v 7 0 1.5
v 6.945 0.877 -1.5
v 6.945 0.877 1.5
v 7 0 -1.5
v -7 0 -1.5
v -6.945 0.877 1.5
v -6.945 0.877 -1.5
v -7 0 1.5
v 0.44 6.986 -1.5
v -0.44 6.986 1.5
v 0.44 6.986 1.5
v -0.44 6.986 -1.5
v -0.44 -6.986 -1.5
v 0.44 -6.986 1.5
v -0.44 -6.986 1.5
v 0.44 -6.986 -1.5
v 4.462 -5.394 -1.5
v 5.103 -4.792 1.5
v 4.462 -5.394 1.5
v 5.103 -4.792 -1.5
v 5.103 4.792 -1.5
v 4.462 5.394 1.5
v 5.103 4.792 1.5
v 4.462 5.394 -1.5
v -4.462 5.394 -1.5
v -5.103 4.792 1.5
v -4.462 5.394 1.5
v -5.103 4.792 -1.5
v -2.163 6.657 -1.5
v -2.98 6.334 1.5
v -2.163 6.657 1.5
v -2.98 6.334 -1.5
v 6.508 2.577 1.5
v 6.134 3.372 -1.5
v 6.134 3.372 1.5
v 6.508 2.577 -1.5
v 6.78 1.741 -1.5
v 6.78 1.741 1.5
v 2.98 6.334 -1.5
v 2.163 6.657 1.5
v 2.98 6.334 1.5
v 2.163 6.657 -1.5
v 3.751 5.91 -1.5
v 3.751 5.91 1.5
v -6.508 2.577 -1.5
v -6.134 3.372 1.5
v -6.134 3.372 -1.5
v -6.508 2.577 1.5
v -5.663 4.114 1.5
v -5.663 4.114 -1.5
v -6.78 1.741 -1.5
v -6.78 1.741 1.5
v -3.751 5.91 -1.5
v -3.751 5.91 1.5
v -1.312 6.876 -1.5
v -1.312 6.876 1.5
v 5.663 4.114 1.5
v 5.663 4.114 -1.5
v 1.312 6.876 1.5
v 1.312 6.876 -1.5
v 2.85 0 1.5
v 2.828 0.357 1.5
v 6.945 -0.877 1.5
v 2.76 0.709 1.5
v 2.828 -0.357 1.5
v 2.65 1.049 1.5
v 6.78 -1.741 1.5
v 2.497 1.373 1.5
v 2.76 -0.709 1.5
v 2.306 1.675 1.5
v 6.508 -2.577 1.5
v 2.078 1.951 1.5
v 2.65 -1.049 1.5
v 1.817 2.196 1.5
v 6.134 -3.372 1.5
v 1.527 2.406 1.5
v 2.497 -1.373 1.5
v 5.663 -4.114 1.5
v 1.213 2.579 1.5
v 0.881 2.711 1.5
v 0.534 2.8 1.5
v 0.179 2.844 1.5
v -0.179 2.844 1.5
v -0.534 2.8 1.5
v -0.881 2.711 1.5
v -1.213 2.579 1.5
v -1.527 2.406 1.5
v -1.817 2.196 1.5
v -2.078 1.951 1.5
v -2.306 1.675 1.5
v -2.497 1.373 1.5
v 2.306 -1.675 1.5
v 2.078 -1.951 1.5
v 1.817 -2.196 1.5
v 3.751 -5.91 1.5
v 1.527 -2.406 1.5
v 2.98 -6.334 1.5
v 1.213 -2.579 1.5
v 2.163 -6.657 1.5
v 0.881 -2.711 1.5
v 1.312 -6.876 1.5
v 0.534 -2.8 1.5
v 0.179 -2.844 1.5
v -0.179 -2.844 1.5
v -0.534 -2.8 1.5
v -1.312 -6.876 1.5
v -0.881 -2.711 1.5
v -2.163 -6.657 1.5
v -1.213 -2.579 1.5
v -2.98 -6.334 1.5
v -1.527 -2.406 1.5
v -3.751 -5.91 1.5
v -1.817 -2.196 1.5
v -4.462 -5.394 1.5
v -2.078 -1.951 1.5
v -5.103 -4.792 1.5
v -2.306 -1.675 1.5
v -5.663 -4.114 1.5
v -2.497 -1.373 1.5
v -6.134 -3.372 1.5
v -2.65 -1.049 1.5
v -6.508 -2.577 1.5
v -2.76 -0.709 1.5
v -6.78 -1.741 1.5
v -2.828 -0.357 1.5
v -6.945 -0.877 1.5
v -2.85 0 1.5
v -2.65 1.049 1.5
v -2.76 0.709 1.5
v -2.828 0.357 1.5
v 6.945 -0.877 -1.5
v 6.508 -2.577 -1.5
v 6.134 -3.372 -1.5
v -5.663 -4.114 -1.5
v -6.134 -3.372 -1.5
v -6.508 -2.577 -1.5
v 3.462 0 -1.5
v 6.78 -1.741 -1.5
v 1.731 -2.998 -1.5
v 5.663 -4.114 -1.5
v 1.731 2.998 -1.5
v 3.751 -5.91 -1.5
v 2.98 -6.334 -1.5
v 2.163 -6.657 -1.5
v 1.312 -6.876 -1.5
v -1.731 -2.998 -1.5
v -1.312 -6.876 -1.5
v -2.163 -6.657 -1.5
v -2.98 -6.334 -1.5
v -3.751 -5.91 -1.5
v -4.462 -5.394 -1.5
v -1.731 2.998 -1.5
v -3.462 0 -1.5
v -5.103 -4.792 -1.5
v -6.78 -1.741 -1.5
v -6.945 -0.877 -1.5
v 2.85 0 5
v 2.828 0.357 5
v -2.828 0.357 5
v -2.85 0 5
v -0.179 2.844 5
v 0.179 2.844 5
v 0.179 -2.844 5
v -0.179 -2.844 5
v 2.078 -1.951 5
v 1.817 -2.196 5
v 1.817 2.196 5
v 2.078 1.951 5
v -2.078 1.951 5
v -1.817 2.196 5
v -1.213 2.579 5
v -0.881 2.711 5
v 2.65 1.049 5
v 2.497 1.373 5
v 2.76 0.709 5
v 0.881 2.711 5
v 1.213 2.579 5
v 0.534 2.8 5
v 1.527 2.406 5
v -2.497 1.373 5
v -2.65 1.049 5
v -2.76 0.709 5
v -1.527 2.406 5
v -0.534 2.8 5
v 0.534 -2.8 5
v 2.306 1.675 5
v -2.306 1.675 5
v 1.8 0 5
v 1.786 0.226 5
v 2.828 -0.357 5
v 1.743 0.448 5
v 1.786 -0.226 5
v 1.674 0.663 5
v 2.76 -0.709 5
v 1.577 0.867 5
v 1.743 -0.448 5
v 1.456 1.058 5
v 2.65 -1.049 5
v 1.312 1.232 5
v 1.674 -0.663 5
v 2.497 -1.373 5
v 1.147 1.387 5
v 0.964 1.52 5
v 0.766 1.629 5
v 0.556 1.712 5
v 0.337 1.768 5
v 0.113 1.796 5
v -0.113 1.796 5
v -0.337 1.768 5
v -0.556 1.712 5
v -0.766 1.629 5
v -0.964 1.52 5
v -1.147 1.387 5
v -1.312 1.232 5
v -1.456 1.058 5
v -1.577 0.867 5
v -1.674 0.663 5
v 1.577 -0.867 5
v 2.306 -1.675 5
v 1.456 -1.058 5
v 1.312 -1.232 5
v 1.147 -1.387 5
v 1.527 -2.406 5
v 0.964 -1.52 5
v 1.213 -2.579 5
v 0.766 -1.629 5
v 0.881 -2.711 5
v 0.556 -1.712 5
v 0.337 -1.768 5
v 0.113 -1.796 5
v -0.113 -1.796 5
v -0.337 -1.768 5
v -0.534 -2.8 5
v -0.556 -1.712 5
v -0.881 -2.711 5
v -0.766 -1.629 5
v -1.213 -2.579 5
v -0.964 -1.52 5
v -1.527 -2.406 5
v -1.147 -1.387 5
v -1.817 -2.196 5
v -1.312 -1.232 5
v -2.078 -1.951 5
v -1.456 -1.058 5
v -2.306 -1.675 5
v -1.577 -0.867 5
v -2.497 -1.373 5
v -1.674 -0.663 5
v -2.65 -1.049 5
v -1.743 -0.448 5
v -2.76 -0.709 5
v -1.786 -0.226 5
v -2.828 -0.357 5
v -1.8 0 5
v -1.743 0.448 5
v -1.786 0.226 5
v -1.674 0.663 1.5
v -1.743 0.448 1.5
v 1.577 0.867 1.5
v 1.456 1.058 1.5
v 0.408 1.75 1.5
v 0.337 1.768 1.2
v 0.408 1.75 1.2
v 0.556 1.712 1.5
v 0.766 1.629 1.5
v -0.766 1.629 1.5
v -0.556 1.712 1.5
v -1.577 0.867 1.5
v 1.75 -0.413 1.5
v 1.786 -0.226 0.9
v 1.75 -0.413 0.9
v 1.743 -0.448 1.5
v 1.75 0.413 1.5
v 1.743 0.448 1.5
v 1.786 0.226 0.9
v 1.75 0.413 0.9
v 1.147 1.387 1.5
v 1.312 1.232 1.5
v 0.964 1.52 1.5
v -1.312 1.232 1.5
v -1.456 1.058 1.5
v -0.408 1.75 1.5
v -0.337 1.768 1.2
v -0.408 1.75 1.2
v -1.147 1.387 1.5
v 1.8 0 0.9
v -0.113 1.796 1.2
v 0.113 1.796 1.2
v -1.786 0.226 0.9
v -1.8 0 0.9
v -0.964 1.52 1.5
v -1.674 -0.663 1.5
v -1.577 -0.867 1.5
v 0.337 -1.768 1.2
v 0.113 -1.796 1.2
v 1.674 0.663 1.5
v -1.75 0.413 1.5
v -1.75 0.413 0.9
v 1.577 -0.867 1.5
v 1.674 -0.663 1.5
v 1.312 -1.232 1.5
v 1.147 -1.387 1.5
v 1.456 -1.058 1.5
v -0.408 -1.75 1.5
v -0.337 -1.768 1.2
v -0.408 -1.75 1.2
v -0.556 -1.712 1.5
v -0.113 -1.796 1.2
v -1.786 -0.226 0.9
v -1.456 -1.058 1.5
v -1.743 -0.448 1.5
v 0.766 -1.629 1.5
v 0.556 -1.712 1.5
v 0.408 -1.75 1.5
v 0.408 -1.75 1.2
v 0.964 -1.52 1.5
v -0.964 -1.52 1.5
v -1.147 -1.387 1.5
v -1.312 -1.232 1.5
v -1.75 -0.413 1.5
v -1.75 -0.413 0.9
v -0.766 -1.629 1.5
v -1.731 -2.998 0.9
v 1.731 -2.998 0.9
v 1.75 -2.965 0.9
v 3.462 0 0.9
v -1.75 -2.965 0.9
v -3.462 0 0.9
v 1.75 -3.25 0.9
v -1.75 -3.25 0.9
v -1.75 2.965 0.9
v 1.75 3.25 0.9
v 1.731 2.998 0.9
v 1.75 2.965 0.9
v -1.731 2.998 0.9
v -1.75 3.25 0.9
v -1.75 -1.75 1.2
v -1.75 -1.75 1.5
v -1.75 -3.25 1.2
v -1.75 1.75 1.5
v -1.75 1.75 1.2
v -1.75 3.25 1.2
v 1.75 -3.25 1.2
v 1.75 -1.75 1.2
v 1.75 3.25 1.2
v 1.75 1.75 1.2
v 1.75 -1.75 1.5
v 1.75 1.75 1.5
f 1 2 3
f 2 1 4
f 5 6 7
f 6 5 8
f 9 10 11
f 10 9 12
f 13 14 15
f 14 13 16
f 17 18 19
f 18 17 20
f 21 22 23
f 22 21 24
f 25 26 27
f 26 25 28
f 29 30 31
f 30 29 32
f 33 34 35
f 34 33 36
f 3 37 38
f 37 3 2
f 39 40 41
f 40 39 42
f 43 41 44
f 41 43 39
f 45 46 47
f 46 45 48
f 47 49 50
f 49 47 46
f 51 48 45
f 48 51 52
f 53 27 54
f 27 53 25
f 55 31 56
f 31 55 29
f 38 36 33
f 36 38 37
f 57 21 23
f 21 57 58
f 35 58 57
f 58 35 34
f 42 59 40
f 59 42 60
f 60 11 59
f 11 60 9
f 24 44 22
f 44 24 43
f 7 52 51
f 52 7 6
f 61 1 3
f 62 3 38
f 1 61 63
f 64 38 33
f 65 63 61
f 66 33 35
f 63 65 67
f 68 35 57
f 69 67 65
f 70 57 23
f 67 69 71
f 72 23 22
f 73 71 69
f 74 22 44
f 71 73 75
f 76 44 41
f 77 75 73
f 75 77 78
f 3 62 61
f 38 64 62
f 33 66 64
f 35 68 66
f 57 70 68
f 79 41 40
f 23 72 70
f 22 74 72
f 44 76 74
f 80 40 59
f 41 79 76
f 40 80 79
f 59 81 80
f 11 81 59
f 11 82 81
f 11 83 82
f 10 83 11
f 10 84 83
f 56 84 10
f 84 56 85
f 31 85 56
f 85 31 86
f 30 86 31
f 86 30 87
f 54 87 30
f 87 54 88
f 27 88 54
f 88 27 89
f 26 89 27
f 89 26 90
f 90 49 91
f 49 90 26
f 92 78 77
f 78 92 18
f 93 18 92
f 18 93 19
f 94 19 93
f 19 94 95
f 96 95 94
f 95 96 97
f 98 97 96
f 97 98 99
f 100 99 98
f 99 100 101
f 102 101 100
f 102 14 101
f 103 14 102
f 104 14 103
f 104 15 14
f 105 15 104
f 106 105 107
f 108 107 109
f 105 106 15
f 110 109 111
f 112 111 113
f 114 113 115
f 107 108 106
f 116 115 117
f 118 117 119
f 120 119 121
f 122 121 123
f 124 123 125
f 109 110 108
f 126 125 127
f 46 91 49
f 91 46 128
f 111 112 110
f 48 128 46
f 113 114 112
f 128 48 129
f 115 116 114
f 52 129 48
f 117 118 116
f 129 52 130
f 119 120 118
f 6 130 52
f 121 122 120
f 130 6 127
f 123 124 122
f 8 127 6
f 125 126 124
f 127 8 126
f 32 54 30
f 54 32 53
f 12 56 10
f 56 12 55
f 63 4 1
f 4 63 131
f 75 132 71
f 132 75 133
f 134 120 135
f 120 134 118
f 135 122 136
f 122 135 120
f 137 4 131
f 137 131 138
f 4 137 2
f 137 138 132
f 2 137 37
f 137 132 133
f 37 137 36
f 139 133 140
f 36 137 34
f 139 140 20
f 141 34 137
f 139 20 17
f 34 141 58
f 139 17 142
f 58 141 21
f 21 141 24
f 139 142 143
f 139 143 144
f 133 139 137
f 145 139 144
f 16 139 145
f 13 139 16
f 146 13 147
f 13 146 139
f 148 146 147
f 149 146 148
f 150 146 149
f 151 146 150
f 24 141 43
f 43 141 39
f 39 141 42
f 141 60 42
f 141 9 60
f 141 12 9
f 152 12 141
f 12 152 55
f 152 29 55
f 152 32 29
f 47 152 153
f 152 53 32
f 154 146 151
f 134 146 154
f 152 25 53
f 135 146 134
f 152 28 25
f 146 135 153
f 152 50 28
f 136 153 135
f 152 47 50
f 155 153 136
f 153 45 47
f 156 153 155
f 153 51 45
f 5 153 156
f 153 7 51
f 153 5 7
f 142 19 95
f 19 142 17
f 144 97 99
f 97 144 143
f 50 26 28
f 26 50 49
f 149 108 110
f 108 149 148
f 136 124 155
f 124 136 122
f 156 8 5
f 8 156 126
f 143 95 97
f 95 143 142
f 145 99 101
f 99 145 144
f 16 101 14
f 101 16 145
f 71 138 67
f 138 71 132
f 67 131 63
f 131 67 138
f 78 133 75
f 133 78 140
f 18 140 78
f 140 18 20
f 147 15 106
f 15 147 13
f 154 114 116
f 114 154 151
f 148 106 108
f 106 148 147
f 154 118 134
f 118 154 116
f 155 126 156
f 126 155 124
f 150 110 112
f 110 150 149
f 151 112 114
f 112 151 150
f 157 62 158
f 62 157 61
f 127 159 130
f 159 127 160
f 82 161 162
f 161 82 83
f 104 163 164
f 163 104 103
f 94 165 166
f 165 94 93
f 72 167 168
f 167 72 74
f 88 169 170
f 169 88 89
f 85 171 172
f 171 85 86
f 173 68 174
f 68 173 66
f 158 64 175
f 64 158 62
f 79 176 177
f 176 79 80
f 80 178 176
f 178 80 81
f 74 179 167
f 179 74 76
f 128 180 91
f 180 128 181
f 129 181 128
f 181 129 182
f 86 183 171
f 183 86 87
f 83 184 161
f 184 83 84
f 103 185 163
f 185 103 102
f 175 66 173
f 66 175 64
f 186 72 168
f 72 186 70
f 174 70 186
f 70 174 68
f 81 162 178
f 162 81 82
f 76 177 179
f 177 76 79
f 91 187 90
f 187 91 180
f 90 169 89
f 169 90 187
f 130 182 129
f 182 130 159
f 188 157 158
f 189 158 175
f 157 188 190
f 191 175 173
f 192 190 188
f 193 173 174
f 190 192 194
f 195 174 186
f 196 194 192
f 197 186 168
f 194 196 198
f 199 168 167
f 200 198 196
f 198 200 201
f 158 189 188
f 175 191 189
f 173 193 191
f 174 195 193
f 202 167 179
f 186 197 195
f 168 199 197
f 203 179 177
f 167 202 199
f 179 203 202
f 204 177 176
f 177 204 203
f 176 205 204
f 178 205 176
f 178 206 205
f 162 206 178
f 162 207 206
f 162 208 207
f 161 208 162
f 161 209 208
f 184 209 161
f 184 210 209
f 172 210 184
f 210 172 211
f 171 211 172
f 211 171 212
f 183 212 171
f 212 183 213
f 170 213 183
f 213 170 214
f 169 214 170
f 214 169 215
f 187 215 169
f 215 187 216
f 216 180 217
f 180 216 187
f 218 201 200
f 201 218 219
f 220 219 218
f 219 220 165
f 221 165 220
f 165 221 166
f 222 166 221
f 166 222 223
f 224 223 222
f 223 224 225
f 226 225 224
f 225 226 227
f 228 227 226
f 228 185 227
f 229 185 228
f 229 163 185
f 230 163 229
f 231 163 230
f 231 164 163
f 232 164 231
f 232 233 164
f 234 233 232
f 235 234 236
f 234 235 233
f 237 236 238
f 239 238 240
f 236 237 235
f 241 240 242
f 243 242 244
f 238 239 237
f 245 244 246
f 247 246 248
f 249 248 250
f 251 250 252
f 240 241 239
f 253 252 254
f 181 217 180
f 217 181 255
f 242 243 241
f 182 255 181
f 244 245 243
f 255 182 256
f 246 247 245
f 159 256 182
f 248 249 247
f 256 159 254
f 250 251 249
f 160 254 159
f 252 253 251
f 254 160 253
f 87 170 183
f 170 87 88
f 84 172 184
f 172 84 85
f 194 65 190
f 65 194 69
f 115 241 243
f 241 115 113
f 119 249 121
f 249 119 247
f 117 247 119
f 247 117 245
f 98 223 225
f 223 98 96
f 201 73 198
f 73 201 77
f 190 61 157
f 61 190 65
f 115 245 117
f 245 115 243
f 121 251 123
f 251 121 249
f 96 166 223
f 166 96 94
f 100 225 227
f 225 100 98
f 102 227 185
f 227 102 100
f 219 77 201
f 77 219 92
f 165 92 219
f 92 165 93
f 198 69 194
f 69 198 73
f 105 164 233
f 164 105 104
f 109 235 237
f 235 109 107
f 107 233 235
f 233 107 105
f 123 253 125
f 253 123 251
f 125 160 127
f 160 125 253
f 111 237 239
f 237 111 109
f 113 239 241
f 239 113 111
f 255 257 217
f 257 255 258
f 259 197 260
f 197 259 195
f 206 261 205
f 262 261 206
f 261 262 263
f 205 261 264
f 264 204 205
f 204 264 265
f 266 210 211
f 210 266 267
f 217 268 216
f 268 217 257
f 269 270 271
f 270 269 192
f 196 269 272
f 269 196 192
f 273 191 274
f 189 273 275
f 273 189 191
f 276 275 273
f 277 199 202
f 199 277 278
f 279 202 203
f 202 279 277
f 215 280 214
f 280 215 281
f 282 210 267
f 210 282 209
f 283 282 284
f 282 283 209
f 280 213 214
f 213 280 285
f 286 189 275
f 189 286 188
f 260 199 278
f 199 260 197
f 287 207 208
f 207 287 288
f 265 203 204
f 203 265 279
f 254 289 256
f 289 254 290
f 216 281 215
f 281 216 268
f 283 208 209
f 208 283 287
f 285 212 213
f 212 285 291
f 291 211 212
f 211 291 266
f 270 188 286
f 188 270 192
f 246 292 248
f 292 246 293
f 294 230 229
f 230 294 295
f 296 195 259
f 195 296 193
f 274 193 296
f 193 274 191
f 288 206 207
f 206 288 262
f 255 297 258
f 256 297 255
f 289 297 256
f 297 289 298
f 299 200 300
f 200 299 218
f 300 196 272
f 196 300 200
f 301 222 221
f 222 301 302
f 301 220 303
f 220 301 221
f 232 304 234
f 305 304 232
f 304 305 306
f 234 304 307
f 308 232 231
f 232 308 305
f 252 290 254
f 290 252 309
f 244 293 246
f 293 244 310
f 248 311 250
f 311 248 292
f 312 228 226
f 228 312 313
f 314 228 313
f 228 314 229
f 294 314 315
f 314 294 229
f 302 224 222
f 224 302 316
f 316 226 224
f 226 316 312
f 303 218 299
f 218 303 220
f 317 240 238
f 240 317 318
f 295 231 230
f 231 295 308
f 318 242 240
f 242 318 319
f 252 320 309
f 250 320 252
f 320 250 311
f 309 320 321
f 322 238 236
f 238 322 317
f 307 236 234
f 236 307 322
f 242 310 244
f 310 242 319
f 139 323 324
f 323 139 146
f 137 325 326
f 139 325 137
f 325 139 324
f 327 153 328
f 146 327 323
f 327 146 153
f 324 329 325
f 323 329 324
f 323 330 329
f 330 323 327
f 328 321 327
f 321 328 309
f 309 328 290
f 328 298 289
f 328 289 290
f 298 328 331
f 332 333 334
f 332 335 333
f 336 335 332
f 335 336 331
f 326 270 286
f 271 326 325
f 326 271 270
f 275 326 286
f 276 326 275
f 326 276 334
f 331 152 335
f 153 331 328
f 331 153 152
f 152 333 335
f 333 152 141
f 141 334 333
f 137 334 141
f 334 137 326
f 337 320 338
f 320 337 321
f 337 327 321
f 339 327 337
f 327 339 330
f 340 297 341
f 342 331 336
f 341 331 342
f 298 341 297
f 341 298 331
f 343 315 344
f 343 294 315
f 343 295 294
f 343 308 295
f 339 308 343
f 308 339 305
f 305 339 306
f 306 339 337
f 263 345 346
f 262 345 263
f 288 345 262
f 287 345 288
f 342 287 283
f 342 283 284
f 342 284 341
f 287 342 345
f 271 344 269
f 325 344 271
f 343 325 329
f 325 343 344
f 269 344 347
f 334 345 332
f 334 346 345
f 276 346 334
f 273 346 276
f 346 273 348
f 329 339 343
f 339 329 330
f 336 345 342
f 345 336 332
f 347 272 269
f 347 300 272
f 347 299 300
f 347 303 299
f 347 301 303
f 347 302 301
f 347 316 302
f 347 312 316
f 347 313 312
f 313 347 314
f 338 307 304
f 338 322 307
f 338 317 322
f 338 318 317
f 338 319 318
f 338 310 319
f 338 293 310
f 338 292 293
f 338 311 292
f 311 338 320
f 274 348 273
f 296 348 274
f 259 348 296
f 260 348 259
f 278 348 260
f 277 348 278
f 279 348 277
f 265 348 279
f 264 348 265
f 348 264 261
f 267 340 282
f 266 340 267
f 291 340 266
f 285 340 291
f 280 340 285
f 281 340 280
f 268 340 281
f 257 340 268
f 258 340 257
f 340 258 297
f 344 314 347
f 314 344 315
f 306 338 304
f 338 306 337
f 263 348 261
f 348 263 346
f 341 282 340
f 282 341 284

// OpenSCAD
$fn = 50;


difference() {
	union() {
		translate(v = [0, 0, -1.5000000000]) {
			rotate(a = [0, 0, 0]) {
				cylinder(h = 3, r = 7.0000000000);
			}
		}
		translate(v = [0, 0, -1.5000000000]) {
			rotate(a = [0, 0, 0]) {
				cylinder(h = 6.5000000000, r = 2.8500000000);
			}
		}
	}
	union() {
		translate(v = [0, 0, -125.0000000000]) {
			rotate(a = [0, 0, 0]) {
				cylinder(h = 250, r = 1.8000000000);
			}
		}
		translate(v = [0, 0, -2.1000000000]) {
			rotate(a = [0, 0, 0]) {
				#translate(v = [0, 0, 0]) {
					rotate(a = [0, 0, 0]) {
						linear_extrude(height = 3) {
							polygon(points = [[3.4620000000, 0.0000000000], [1.7310000000, 2.9981799479], [-1.7310000000, 2.9981799479], [-3.4620000000, 0.0000000000], [-1.7310000000, -2.9981799479], [1.7310000000, -2.9981799479]]);
						}
					}
				}
			}
		}
		#translate(v = [-1.7500000000, -3.2500000000, 0.9000000000]) {
			rotate(a = [0, 0, 0]) {
				cube(size = [3.5000000000, 6.5000000000, 0.3000000000]);
			}
		}
		#translate(v = [-1.7500000000, -1.7500000000, 1.2000000000]) {
			rotate(a = [0, 0, 0]) {
				cube(size = [3.5000000000, 3.5000000000, 0.3000000000]);
			}
		}
		#translate(v = [-1.7500000000, -3.2500000000, -2.4000000000]) {
			rotate(a = [0, 0, 0]) {
				cube(size = [3.5000000000, 6.5000000000, 0.3000000000]);
			}
		}
		#translate(v = [-1.7500000000, -1.7500000000, -2.7000000000]) {
			rotate(a = [0, 0, 0]) {
				cube(size = [3.5000000000, 3.5000000000, 0.3000000000]);
			}
		}
	}
}
